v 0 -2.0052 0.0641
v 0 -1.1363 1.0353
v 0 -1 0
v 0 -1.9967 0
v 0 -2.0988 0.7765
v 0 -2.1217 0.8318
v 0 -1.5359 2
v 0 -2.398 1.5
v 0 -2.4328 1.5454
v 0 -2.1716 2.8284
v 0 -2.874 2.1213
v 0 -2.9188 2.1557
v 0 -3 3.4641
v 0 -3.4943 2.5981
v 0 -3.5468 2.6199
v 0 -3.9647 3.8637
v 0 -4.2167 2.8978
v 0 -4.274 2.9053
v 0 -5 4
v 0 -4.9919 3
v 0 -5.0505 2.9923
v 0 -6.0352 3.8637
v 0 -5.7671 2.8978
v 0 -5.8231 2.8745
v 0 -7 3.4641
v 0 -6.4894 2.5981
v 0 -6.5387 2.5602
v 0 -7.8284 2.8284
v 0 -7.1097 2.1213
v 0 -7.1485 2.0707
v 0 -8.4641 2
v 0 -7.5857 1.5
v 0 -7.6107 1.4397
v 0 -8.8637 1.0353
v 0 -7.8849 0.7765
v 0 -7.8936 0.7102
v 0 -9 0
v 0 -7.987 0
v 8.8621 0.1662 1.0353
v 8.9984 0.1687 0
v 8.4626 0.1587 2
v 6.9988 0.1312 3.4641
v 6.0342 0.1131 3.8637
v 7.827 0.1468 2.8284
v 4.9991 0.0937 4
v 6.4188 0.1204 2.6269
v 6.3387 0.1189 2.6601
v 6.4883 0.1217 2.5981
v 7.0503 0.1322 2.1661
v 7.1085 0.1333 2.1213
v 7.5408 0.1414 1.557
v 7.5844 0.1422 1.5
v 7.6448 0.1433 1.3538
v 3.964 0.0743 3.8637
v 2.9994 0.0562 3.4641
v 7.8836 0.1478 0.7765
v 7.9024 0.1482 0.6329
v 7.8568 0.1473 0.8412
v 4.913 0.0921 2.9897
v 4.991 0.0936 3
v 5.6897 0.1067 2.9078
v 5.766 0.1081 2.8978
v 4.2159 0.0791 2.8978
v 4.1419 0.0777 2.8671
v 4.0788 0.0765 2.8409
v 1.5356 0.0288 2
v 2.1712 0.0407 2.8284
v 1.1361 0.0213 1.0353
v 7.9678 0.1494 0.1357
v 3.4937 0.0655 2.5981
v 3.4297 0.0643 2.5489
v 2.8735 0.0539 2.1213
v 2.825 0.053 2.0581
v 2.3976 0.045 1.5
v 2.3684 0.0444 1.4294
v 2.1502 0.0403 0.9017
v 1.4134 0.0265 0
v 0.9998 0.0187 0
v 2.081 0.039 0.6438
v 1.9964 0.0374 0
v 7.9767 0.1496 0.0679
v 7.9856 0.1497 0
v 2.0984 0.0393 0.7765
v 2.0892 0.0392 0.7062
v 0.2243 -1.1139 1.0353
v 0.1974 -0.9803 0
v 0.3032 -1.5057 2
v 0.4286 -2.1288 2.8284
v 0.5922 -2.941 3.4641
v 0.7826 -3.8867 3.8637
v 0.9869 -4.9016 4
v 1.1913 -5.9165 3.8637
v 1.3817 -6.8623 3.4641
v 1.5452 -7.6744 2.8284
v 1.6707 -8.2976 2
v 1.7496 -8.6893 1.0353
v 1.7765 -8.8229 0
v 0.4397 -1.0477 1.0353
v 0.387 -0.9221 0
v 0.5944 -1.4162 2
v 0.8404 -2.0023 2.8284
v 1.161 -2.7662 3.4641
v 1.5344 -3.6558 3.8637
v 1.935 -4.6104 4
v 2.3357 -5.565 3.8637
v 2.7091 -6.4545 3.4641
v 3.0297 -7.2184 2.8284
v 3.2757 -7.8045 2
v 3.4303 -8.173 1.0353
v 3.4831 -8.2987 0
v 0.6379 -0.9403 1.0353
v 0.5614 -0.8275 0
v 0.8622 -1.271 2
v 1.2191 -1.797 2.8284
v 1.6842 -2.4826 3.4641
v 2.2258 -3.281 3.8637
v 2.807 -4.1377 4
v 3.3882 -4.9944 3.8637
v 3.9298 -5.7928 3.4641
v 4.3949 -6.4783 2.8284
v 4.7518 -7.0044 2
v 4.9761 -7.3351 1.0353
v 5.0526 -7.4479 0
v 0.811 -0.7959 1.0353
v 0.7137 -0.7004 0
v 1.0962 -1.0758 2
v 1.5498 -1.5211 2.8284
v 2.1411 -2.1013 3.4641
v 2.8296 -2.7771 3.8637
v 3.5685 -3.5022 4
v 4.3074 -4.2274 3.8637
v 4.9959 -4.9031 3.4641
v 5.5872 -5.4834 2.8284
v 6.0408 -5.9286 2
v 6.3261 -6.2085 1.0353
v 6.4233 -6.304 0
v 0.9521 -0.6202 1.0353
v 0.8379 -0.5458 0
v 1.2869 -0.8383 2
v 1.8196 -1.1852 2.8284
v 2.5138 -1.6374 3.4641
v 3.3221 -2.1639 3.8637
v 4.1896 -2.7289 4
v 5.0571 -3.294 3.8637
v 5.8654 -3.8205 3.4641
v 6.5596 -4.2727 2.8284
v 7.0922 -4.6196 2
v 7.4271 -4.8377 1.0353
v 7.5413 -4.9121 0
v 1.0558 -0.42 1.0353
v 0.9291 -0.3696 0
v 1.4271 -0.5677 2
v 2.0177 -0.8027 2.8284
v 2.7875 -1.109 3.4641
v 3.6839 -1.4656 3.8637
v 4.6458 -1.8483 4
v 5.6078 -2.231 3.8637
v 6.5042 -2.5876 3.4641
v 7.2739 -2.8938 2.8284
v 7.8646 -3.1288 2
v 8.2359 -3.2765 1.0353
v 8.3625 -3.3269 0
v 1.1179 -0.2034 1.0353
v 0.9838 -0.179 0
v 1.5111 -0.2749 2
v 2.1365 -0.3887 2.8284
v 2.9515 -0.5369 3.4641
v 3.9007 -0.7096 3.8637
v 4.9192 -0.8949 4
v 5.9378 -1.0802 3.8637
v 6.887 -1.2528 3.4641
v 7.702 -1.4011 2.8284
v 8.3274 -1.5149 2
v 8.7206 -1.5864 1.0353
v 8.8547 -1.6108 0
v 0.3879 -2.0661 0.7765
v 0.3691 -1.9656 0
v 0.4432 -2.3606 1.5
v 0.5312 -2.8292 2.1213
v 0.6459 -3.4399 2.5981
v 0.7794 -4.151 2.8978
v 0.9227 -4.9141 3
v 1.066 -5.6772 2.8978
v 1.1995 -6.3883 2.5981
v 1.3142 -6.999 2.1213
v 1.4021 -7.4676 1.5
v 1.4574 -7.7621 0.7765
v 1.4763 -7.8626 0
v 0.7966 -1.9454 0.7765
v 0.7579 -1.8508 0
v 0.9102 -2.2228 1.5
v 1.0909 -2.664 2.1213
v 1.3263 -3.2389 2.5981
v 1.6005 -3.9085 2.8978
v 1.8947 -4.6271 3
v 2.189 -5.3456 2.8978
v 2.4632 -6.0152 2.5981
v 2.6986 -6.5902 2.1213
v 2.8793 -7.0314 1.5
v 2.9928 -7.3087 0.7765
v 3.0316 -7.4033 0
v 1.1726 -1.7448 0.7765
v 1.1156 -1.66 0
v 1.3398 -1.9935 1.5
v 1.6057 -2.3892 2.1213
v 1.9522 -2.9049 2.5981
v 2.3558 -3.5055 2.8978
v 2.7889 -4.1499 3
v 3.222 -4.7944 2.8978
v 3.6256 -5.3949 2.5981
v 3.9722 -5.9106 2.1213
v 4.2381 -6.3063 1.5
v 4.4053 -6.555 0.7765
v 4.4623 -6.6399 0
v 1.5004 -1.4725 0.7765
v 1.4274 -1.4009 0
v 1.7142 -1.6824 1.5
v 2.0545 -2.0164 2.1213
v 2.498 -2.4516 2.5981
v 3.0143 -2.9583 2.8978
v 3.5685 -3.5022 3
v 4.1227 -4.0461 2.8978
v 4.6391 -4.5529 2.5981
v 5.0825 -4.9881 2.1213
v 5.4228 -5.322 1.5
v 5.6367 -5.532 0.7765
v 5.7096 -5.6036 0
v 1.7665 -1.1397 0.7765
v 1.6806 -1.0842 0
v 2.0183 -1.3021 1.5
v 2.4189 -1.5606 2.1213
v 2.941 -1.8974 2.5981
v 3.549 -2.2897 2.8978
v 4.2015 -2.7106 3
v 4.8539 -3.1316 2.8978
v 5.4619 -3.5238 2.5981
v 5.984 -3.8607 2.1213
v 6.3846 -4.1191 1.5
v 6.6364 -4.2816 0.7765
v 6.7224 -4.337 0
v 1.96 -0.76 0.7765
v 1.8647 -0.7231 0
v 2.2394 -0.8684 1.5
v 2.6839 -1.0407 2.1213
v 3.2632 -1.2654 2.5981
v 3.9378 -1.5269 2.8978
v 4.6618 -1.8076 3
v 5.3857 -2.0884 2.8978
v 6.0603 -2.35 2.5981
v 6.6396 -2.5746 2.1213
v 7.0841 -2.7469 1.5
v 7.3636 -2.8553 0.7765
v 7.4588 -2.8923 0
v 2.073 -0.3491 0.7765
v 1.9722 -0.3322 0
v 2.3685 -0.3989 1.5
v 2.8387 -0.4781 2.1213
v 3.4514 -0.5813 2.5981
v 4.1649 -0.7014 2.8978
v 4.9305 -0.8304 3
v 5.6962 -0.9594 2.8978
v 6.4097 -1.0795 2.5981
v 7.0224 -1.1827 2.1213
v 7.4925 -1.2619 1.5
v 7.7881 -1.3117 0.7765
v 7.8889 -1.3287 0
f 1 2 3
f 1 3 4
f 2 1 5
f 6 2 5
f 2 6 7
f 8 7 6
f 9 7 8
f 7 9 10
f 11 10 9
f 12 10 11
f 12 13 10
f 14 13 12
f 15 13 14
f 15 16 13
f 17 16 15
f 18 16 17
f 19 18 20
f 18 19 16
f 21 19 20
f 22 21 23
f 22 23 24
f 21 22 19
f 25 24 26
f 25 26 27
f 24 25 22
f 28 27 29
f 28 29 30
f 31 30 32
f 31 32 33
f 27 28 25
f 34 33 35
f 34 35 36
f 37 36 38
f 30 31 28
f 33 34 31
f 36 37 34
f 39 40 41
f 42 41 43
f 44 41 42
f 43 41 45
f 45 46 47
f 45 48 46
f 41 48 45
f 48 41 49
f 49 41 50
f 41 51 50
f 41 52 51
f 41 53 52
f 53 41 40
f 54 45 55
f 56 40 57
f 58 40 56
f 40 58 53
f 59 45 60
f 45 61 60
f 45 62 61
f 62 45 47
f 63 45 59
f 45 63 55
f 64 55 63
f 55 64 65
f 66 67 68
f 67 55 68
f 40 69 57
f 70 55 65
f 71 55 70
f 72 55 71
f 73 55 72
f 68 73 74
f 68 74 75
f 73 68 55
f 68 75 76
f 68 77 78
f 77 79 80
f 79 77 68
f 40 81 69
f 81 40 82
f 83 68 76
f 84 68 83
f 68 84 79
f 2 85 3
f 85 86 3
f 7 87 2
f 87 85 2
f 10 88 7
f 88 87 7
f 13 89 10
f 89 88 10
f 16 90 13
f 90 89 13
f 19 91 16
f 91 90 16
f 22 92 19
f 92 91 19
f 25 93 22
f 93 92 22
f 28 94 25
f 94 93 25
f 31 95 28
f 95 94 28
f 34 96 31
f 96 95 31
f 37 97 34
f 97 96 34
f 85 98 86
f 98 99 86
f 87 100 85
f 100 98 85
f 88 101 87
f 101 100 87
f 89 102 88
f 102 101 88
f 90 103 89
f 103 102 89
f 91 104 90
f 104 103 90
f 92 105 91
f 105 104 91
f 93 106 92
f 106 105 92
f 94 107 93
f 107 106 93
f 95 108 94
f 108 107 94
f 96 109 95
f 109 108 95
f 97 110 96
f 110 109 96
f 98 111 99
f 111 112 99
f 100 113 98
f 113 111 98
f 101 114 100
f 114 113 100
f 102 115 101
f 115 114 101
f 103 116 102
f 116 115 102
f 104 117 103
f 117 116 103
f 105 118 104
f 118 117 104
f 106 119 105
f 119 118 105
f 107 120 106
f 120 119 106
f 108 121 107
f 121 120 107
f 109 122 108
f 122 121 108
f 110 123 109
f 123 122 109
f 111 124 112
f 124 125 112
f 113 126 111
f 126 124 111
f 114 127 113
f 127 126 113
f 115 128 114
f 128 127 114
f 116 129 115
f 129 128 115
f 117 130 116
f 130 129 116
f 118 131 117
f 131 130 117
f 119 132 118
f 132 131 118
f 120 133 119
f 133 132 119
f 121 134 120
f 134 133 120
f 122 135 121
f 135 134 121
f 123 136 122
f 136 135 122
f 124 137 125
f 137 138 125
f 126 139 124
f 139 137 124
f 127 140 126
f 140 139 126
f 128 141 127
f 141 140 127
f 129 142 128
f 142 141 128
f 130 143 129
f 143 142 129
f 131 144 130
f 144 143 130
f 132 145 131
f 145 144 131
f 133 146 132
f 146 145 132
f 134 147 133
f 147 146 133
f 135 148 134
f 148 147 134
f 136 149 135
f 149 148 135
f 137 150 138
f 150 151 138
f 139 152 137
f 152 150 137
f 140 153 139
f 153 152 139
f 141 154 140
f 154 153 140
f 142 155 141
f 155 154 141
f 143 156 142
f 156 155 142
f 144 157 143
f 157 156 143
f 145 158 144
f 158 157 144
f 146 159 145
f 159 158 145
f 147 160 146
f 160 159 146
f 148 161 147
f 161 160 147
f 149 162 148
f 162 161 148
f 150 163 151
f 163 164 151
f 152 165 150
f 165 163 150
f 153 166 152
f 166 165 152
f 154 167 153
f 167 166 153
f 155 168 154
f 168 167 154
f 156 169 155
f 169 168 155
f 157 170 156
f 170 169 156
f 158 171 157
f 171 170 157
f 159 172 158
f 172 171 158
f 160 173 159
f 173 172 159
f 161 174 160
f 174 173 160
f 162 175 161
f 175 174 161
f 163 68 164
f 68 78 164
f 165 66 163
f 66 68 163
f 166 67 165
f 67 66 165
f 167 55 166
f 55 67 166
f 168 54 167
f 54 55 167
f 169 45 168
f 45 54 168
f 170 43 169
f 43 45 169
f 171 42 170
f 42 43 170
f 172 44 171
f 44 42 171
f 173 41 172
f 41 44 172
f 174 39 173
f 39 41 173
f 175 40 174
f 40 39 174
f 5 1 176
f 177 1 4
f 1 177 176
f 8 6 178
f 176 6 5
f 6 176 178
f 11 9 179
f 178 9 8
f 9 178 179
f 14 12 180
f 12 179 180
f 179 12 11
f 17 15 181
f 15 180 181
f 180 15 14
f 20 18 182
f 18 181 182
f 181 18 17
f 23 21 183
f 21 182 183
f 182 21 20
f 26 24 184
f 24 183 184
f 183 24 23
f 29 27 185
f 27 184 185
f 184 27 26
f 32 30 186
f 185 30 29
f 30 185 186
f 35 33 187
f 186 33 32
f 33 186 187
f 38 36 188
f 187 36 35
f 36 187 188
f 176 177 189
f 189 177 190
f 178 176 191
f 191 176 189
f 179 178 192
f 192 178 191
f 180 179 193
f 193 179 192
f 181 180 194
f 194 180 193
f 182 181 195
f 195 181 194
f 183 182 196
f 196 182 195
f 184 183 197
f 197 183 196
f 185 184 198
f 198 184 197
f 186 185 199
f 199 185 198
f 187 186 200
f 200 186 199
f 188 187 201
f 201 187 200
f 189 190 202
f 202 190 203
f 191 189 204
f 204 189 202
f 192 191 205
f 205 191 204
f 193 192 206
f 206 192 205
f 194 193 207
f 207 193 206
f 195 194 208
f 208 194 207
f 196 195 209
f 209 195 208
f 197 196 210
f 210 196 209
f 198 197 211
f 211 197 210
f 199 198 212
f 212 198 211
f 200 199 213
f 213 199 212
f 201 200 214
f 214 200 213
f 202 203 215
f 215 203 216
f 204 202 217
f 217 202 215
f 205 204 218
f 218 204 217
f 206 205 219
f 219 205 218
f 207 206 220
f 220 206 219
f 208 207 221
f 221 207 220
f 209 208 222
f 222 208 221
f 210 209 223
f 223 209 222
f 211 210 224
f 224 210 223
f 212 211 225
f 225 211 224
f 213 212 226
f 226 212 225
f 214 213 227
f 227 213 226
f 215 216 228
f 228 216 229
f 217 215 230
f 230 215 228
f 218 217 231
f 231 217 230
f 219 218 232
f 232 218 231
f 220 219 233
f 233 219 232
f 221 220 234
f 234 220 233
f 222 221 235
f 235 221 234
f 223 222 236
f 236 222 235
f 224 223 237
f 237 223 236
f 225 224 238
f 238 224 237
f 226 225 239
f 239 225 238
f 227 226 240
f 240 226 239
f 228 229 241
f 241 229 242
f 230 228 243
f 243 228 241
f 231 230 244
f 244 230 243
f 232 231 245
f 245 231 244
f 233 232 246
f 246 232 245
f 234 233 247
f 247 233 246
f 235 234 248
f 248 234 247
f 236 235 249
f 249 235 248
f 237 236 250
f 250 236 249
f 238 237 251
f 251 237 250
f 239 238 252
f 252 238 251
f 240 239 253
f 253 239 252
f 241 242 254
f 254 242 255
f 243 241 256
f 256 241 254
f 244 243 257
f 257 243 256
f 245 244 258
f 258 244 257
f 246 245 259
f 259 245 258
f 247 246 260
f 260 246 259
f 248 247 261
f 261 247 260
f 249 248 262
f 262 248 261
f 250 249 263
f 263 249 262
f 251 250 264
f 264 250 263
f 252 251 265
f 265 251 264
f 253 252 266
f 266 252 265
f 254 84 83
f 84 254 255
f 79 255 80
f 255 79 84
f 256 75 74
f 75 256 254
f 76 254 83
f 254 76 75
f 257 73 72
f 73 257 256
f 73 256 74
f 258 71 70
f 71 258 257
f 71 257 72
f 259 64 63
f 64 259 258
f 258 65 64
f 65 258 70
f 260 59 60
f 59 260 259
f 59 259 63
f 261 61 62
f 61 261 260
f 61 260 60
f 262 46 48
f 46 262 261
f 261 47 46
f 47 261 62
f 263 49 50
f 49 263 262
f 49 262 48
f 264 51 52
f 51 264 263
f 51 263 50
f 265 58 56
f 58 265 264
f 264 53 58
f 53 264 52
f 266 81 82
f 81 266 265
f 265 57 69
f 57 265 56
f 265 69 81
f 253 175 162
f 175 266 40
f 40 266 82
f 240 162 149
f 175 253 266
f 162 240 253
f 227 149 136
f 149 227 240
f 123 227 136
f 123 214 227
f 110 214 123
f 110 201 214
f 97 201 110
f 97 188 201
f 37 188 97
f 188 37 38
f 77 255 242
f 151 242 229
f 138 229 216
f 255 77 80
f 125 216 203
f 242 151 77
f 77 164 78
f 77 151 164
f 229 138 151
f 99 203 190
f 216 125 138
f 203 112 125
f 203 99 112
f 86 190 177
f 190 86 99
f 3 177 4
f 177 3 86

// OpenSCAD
// file: ../build_environments.scad
// build_environments.scad: modules to build level sections
//

module pool(diameter=10.0, wall_height=2.0, step_width=3.0, connections=[])
{
    difference() {
        union() {
        difference() {
            cylinder(h=0.5,r1=diameter+step_width,r2=diameter+step_width,$fn=48);
            translate([0,0,-0.1])
                cylinder(h=0.7,r1=diameter,r2=diameter,$fn=48);
        }
        difference() {
            cylinder(h=wall_height,r1=diameter+step_width+1.0,r2=diameter+step_width+1.0,$fn=48);
            translate([0,0,-0.1])
                cylinder(h=wall_height+0.2,r1=diameter+step_width,r2=diameter+step_width,$fn=48);
        }
        }
    
        for (c = connections)
        {
            rotate([0,90,0]) {
                angle = atan2(c[1],c[0]);
                rotate([-angle,0,0]) {
                    cylinder(h=diameter+5.0,r1=c[2],r2=c[2],$fn=48);
                }
            }
        }
    }
}

module straight(length=10.0, width=2.0, dy1=0.0, dy2=0.0, dz=0.0)
{
    dims = [0, 0, 0, 0, 0, (dz/length)];
    matrix = [
        [ 1, dims[0], dims[1], 0 ],
        [ dims[2], 1, dims[4], 0 ],
        [ dims[5], dims[3], 1, 0 ],
        [ 0, 0, 0, 1 ]
    ];
    multmatrix(matrix)
    difference() {
        translate([dy1,0,0])
        union() {
            rotate([0,90,0]) {
                difference() {
                    cylinder(h=(length-dy1-dy2),r1=width+1.0,r2=width+1.0,$fn=24);
                    translate([0,0,-0.1])
                        cylinder(h=(length-dy1-dy2+0.2),r1=width,r2=width,$fn=24);
                }
                difference() {
                    cylinder(h=1.0,r1=width+2.0,r2=width+2.0,$fn=24);
                    translate([0,0,-0.1])
                        cylinder(h=1.2,r1=width,r2=width,$fn=24);
                }
                translate([0,0,(length-dy1-dy2)-1.0]) {
                    difference() {
                        cylinder(h=1.0,r1=width+2.0,r2=width+2.0,$fn=24);
                        translate([0,0,-0.1])
                            cylinder(h=1.2,r1=width,r2=width,$fn=24);
                    }
                }
            }
        }
        translate([0,0,-(2*width+4.0)/2])
            cube([3*length,3*length,2*width+4.0],center=true);
    }
}

module curve(p0=[0,0], center=[0,0], dir=1, angle=0.0, width=2.0)
{
    radius = sqrt((p0[0]-center[0])*(p0[0]-center[0]) + (p0[1]-center[1])*(p0[1]-center[1]));
    if (dir == 0) {
        difference() {
            rotate([0,0,-90])
            difference() {
                rotate_extrude(angle = angle, convexity = 10, $fn=32)
                    translate([radius, 0, 0])
                        circle(r = width+1.0,$fn=24);
                rotate([0,0,-1.0])
                    rotate_extrude(angle = angle+2.0, convexity = 10, $fn=32)
                        translate([radius, 0, 0])
                            circle(r = width,$fn=24);
            }
            translate([0,0,-(2*width+4.0)/2])
                cube([5*radius,5*radius,2*width+4.0],center=true);
        }
    }
    else {
        difference() {
            rotate([0,0,90])
            difference() {
                rotate_extrude(angle = -angle, convexity = 10, $fn=32)
                    translate([radius, 0, 0])
                        circle(r = width+1.0,$fn=24);
                rotate([0,0,1.0])
                    rotate_extrude(angle = -angle-2.0, convexity = 10, $fn=32)
                        translate([radius, 0, 0])
                            circle(r = width,$fn=24);
            }
            translate([0,0,-(2*width+4.0)/2])
                cube([5*radius,5*radius,2*width+4.0],center=true);
        }
    }

}

// test pool
//pool(diameter=12.0000, wall_height=3.0000, step_width=3.0000, connections=[[0.0000,-26.0000,2.0000], [23.6074,0.0000,2.0000]]);

// test straight, slope
//straight(length=26.0000, width=2.0000, dy1=11.8322, dy2=6.7082, dz=0.0000);
//straight(length=29.1549, width=12.0000, dy1=0.0000, dy2=0.0000, dz=-15.0000);

// test curve
//curve(p0=[23.6074, 0.0000], center=[23.6074, 5.0000], dir=0, angle=60.1011, width=2.0000);
//curve(p0=[33.6426, 12.4219], center=[37.9771, 9.9295], dir=1, angle=120.4627, width=2.0000);
// main file
use <../build_environments.scad>;
curve(p0=[-119.0937, 107.7205], center=[-119.0000, 112.7196], dir=0, angle=91.0742, width=3.0000);
